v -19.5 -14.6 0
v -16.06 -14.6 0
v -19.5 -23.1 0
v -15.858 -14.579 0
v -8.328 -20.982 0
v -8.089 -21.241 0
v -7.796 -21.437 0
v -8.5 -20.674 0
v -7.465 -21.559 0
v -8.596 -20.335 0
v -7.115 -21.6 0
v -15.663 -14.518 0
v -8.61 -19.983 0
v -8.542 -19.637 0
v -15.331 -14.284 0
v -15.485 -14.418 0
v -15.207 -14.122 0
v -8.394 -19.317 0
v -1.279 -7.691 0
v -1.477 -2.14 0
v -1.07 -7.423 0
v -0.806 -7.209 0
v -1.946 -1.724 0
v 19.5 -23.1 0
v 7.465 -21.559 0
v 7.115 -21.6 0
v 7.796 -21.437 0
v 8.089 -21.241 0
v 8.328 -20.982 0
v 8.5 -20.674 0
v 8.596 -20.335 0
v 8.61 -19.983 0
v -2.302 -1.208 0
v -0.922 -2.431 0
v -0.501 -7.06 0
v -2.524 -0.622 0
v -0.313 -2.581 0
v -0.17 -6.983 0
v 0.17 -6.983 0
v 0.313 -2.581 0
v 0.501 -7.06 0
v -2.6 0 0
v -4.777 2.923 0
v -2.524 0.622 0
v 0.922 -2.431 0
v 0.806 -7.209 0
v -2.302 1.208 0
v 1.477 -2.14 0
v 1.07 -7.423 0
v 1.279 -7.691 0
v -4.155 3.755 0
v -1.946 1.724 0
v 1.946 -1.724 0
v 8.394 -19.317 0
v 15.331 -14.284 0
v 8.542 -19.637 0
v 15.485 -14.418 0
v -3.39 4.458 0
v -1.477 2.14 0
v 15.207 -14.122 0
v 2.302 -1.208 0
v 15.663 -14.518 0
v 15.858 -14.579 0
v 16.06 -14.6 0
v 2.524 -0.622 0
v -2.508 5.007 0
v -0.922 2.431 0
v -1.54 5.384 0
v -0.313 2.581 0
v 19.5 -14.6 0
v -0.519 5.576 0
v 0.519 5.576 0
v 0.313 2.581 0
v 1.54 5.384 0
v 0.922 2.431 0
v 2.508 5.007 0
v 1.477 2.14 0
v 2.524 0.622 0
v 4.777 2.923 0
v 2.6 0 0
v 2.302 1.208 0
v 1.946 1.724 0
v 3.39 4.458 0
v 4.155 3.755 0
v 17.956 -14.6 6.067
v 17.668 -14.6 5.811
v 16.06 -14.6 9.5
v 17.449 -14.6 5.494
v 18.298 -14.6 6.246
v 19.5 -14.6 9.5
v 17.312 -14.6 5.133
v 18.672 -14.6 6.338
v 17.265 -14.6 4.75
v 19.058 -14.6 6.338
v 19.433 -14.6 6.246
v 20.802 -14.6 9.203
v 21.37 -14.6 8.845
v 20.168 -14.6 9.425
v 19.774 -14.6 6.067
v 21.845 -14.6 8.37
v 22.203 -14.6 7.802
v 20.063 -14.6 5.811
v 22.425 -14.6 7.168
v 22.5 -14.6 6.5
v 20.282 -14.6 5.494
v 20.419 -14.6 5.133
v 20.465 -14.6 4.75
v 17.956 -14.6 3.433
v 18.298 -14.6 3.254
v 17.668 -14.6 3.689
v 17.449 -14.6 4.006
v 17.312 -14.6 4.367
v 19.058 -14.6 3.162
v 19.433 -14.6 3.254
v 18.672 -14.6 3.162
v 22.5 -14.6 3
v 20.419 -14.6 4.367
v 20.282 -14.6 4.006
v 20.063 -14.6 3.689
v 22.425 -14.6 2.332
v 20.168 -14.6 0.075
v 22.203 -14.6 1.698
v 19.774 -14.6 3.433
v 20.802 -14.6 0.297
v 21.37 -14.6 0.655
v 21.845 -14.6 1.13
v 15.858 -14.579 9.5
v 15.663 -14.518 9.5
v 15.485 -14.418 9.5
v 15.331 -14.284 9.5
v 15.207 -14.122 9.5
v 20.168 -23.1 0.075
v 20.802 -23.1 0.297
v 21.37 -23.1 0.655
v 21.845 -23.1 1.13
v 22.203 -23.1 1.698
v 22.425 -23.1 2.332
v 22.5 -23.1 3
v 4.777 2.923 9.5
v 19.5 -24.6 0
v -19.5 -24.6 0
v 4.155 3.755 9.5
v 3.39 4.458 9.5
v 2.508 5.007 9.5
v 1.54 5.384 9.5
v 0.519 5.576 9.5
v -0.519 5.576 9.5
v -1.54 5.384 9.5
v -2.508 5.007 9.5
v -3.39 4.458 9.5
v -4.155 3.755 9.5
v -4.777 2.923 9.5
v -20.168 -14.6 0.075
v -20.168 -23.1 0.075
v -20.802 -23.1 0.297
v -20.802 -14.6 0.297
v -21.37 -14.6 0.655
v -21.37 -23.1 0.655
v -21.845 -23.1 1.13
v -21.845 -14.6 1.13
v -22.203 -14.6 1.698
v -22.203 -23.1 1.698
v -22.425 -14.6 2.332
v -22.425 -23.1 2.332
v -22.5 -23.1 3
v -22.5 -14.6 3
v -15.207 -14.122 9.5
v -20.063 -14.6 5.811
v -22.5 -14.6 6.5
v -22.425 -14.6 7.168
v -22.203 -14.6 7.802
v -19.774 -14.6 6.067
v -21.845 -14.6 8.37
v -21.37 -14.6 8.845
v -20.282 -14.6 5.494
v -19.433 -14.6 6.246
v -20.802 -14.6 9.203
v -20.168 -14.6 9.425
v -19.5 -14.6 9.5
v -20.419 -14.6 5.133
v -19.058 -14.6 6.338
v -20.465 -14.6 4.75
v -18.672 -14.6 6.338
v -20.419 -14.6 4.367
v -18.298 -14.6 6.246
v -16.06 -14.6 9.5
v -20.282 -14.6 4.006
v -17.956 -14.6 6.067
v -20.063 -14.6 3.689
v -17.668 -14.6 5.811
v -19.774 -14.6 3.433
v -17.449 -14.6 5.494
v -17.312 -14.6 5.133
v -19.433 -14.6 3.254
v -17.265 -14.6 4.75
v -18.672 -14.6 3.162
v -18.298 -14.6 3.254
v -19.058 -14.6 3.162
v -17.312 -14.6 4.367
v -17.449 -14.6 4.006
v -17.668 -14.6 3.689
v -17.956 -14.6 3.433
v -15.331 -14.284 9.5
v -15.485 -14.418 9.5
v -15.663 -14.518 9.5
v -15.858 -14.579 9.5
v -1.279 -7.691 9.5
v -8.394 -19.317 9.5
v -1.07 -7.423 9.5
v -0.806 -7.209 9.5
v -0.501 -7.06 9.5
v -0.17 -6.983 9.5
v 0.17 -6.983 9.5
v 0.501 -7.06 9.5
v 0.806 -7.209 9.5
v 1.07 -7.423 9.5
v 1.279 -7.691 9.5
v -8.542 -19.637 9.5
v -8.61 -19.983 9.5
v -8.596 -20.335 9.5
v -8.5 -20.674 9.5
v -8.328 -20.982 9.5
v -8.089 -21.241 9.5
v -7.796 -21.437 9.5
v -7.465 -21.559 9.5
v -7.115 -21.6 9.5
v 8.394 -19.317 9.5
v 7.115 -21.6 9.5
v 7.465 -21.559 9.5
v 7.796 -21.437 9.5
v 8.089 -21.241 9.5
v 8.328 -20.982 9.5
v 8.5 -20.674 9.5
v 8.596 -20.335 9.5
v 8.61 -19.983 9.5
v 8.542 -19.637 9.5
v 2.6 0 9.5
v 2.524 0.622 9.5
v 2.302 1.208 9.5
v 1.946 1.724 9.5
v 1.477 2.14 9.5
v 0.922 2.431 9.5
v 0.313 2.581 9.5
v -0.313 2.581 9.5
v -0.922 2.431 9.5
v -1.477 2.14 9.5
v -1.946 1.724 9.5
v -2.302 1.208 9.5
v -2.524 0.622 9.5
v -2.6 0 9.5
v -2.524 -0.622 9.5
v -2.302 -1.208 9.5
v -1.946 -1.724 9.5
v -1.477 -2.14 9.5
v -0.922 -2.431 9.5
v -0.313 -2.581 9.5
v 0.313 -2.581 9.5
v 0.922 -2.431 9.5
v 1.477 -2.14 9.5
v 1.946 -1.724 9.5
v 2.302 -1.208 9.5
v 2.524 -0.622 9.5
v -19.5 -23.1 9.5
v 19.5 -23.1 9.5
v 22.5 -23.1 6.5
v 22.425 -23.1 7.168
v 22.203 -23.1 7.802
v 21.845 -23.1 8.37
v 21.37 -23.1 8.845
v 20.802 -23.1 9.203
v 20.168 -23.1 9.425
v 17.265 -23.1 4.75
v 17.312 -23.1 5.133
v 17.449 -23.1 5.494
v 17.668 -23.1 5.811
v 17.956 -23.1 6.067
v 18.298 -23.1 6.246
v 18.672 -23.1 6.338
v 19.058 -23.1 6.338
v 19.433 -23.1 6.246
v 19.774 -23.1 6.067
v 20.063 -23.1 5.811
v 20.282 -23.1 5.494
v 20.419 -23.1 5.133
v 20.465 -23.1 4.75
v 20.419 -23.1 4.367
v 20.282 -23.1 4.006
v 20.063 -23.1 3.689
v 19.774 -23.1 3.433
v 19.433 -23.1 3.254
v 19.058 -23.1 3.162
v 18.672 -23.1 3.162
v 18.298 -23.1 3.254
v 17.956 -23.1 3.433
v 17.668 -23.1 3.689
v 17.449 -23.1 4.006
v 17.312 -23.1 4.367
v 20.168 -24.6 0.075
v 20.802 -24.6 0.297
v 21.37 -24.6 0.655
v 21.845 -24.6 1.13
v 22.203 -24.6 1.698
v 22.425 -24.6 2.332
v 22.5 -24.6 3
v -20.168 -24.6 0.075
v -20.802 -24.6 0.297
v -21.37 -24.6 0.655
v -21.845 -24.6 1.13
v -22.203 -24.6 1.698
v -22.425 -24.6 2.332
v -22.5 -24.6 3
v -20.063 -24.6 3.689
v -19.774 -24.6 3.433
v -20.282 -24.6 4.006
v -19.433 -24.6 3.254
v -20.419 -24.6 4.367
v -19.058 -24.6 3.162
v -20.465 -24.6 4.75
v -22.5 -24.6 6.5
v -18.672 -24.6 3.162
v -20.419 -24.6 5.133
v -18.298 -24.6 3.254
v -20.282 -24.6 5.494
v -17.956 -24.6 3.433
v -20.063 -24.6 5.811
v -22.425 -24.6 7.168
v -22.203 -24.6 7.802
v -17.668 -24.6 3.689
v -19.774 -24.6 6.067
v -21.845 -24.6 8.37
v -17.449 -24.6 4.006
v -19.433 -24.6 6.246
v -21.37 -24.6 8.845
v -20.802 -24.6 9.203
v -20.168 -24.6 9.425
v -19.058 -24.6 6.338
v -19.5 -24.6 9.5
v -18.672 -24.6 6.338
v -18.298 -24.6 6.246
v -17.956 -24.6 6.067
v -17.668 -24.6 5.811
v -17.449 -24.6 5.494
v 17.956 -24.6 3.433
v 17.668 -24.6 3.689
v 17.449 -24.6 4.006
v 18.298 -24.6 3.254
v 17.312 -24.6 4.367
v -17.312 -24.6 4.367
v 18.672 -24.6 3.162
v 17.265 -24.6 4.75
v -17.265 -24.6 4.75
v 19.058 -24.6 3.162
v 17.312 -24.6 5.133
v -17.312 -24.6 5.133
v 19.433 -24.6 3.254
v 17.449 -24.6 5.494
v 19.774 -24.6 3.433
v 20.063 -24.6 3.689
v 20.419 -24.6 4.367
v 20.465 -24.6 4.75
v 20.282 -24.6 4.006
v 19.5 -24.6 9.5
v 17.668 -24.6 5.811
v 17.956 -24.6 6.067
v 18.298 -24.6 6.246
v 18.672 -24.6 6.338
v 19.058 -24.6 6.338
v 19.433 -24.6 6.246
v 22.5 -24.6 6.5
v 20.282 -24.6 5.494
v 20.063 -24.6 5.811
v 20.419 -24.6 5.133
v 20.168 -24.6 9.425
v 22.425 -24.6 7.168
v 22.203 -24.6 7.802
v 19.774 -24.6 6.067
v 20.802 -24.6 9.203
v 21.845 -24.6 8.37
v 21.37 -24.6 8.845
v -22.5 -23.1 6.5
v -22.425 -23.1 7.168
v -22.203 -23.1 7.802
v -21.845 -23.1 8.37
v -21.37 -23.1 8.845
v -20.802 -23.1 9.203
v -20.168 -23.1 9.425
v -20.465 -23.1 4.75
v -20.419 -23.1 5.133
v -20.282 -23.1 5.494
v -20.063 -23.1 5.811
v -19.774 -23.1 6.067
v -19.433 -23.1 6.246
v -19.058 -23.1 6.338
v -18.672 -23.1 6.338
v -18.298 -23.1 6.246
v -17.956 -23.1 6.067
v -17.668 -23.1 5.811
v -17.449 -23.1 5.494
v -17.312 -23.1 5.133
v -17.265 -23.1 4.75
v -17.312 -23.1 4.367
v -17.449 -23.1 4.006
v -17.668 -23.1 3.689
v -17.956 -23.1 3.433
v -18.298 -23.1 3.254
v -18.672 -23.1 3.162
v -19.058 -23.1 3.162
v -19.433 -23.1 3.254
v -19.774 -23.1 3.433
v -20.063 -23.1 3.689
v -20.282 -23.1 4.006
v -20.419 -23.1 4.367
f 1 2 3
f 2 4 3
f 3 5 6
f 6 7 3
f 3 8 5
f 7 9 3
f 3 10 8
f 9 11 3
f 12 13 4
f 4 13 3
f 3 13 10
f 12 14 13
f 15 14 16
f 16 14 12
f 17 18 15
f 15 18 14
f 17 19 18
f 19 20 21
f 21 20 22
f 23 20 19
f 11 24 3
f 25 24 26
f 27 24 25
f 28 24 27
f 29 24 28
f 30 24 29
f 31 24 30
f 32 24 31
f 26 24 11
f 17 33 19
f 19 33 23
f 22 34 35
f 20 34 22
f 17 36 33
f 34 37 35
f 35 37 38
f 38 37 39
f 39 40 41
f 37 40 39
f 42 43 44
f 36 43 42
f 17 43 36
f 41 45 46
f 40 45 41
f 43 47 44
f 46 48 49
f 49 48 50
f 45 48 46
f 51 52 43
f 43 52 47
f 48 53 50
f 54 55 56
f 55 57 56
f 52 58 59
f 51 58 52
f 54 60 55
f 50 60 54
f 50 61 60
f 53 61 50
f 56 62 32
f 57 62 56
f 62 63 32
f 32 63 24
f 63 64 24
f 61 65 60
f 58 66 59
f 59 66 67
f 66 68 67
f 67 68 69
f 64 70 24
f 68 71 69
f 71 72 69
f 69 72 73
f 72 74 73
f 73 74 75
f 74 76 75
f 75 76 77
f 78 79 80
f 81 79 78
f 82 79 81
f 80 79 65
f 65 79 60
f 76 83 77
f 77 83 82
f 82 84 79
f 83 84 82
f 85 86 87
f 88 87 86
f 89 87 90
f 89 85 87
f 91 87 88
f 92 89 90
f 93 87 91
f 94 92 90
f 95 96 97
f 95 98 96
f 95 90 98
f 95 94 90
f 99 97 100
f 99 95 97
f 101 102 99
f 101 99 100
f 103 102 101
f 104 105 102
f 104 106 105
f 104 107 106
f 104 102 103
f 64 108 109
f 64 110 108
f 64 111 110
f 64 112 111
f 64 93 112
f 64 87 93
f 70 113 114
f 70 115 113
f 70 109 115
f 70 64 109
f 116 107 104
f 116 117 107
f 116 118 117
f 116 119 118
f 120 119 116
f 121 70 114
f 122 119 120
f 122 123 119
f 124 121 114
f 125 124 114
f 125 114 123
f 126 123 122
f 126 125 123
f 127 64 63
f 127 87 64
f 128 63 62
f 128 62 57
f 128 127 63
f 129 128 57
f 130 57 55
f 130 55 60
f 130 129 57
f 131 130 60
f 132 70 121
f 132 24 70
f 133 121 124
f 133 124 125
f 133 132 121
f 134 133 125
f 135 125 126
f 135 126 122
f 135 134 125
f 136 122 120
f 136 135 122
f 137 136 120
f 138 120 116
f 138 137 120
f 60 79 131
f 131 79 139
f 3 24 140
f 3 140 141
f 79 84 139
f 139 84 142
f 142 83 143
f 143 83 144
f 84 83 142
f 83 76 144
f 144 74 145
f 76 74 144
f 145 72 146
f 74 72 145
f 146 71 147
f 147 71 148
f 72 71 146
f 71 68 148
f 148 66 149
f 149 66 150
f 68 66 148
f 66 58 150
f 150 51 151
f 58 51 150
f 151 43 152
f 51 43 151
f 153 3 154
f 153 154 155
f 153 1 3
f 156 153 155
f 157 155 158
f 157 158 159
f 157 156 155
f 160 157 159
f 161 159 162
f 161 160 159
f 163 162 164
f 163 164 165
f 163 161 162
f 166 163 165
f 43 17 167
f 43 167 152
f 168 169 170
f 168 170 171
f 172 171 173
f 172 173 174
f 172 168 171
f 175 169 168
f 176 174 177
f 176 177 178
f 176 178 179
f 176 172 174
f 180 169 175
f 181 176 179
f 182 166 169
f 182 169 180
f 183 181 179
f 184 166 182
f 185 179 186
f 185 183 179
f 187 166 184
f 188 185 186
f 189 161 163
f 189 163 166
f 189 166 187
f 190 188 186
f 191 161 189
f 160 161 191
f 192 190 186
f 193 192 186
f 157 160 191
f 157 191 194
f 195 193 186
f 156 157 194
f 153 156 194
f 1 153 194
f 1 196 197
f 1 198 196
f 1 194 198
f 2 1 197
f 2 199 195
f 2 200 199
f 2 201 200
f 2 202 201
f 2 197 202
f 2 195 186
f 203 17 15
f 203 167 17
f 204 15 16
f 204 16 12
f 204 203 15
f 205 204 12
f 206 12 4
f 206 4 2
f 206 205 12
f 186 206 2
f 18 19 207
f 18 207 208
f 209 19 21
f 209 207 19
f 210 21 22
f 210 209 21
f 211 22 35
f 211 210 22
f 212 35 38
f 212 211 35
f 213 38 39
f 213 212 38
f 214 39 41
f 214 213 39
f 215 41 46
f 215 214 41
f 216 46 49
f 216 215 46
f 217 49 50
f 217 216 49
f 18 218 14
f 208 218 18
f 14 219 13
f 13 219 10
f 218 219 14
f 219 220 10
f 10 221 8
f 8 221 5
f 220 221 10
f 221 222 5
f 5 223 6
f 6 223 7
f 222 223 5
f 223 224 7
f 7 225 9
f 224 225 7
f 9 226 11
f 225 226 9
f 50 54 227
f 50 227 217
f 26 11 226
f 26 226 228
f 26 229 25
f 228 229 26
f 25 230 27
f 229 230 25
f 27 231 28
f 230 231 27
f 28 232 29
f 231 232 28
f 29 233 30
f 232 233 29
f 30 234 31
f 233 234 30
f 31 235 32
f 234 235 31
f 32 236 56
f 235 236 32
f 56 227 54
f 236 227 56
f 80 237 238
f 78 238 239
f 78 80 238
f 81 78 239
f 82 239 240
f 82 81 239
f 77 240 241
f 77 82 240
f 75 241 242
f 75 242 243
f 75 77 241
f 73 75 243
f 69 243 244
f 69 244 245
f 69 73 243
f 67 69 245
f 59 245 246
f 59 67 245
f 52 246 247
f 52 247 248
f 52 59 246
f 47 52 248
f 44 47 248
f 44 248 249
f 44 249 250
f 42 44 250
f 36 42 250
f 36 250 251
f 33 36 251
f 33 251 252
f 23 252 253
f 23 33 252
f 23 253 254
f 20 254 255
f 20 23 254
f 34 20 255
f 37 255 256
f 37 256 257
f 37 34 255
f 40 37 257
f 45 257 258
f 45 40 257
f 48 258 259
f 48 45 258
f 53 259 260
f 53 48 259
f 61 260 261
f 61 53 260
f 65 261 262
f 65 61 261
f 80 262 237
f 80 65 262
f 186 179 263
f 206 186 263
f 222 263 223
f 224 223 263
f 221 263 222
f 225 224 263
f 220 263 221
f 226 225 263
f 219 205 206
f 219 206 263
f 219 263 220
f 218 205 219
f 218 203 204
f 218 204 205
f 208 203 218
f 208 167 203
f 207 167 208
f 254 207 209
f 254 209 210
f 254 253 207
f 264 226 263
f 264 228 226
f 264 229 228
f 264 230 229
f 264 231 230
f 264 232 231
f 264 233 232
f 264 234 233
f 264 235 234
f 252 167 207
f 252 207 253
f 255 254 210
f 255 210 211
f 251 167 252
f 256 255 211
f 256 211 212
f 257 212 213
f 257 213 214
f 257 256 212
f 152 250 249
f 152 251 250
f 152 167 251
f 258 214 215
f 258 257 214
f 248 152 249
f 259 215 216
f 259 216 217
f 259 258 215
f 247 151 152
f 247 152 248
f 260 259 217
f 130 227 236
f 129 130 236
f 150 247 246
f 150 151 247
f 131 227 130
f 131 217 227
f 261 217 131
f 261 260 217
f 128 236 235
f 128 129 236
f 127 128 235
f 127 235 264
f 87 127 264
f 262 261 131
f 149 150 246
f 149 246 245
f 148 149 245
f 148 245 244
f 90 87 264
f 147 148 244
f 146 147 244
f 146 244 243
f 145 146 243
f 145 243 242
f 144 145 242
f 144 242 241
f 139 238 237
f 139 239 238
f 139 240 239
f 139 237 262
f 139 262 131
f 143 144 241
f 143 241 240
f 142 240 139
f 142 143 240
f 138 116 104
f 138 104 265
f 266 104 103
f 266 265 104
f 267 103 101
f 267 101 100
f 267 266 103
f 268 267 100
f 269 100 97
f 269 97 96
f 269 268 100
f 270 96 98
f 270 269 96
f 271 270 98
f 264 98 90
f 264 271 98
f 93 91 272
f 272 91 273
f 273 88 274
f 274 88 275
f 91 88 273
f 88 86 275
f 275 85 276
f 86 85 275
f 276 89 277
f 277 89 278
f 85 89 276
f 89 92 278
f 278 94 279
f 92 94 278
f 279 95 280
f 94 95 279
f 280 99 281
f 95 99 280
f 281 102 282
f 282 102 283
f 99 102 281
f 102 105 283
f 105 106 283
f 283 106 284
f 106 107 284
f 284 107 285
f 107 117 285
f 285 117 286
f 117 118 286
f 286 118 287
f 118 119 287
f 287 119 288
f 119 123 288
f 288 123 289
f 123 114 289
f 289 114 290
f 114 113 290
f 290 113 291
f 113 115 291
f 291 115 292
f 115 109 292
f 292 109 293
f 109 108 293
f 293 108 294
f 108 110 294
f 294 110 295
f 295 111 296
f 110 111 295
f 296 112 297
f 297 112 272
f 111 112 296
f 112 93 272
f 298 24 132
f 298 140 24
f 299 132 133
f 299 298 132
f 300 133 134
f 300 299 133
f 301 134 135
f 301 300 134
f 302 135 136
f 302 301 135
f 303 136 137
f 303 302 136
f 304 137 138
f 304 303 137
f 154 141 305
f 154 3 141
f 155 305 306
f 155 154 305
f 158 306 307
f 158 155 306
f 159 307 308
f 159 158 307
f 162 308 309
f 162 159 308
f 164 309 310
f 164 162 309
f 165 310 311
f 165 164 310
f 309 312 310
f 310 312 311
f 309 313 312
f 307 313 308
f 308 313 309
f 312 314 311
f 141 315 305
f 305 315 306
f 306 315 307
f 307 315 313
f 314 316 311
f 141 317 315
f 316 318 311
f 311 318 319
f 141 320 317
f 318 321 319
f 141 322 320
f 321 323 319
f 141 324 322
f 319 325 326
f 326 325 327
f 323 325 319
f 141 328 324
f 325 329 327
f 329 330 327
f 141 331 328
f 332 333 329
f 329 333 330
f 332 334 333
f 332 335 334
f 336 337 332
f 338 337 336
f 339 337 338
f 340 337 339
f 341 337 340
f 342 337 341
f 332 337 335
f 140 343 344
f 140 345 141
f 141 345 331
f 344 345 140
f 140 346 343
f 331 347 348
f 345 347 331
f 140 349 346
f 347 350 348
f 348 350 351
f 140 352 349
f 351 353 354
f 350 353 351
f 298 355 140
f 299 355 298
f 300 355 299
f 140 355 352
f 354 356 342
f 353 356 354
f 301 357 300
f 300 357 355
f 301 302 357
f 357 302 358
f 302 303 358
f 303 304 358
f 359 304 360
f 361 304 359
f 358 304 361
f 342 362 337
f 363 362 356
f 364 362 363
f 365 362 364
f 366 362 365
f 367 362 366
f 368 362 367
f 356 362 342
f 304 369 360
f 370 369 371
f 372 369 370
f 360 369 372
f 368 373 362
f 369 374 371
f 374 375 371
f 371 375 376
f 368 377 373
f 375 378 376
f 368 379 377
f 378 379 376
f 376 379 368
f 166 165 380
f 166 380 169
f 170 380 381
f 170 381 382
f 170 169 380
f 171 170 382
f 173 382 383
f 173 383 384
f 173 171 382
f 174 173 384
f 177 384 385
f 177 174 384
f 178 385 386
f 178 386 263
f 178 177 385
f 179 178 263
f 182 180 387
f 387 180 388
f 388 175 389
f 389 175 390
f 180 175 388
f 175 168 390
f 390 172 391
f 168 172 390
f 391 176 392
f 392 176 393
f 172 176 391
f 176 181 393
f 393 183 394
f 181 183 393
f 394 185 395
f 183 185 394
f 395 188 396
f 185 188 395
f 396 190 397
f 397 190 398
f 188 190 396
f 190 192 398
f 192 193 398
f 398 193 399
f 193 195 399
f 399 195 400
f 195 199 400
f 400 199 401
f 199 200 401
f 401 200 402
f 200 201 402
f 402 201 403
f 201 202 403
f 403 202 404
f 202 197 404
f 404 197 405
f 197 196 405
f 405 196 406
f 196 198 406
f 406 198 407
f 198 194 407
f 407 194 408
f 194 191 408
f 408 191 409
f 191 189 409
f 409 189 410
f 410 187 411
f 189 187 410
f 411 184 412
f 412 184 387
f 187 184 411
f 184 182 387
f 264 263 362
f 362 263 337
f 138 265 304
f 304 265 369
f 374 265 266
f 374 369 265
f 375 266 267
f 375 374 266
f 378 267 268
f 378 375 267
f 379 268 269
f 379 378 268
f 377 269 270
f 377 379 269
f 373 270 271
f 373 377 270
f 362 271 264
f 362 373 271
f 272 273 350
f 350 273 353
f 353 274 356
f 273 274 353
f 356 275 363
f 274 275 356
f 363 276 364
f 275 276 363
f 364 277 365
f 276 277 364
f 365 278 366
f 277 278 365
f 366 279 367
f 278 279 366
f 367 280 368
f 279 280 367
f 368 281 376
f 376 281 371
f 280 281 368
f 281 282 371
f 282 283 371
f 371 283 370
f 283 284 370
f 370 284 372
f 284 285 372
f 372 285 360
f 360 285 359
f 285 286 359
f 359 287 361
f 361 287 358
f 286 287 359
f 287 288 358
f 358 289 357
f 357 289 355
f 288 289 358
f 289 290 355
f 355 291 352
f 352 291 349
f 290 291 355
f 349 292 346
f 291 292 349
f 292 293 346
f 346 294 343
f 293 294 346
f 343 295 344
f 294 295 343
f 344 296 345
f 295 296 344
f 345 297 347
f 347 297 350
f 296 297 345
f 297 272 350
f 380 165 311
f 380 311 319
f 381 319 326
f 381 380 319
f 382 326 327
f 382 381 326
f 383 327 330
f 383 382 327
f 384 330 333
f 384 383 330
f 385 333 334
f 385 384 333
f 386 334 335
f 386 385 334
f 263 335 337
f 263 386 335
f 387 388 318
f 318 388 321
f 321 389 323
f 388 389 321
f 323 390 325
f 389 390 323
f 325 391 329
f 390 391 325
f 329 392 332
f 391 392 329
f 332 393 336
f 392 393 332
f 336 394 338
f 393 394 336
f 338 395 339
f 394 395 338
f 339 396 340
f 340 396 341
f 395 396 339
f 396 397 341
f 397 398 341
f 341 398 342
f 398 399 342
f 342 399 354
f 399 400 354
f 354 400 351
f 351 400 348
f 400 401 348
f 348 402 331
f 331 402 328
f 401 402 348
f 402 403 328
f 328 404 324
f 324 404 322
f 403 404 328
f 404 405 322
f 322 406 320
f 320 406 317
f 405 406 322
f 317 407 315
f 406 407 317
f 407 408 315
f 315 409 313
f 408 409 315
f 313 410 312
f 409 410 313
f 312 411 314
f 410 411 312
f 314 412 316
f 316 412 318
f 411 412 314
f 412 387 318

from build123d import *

# Parameters (mm, degrees)
SKETCH_R           = 2.6
PAD_DEPTH          = 9.5
SKETCH001_R        = 1.6
POCKET_DEPTH       = 10.001
POCKET_FACE8_W     = 45
POCKET_FACE8_H     = 9.5
POCKET_FACE8_R     = 1.6
POCKET001_DEPTH    = 1.5
PAD001_DEPTH       = 45
PAD001_FACE15_R    = 1.6
POCKET002_DEPTH    = 1.501
POCKET003_DEPTH    = 9.501
FILLET_R           = 1.5
POCKET004_DEPTH    = 45.001
POCKET004_FACE12_W = 45
POCKET004_FACE12_H = 9.5
POCKET004_FACE12_R = 1.6
PAD002_DEPTH       = 1.5
FILLET001_R        = 3
FILLET002_R        = 1


with BuildPart() as part:
    # Sketch → Pad (new body)
    with BuildSketch(Plane.XY):
        with BuildLine():
            Line((22.5, -24.6), (-22.5, -24.6))
            Line((-22.5, -24.6), (-22.5, -14.6))
            Line((-22.5, -14.6), (-15.5, -14.6))
            Line((-15.5, -14.6), (-4.77656, 2.923094))
            ThreePointArc((4.77656, 2.923094), (0, 5.6), (-4.77656, 2.923094))
            Line((15.5, -14.6), (4.77656, 2.923094))
            Line((15.5, -14.6), (22.5, -14.6))
            Line((22.5, -14.6), (22.5, -24.6))
        make_face()
        Circle(SKETCH_R, mode=Mode.SUBTRACT)
    extrude(amount=PAD_DEPTH)

    # Sketch001 (on Face1 of Pad) → Pocket (cut, through all)
    with BuildSketch(Plane(origin=(0, -14.6, 0), x_dir=(-1, 0, 0), z_dir=(0, 1, 0))):
        with Locations((-18.865231, 4.75)):
            Circle(SKETCH001_R)
        with Locations((18.865231, 4.75)):
            Circle(SKETCH001_R)
    extrude(amount=-POCKET_DEPTH, mode=Mode.SUBTRACT)

    # Pocket Face8 → Pocket001 (cut)
    with BuildSketch(Plane(origin=(0, -24.6, 4.75), x_dir=(-1, 0, 0), z_dir=(0, -1, 0))):
        Rectangle(POCKET_FACE8_W, POCKET_FACE8_H)
        with Locations((-18.865231, 0)):
            Circle(POCKET_FACE8_R, mode=Mode.SUBTRACT)
        with Locations((18.865231, 0)):
            Circle(POCKET_FACE8_R, mode=Mode.SUBTRACT)
    extrude(amount=-POCKET001_DEPTH, mode=Mode.SUBTRACT)

    # Sketch002 (on Face9 of Pocket001) → Pad001 (join)
    with BuildSketch(Plane(origin=(-22.5, 0, 0), x_dir=(0, -1, 0), z_dir=(-1, 0, 0))):
        Polygon((23.1, 9.5), (23.1, 0), (24.6, 2.25), (24.6, 7.25), align=None)
    extrude(amount=-PAD001_DEPTH)

    # Pad001 Face15 → Pocket002 (cut, through all)
    with BuildSketch(Plane(origin=(18.865231, -23.1, 4.75), x_dir=(1, 0, 0), z_dir=(0, 1, 0))):
        Circle(PAD001_FACE15_R)
    extrude(amount=-POCKET002_DEPTH, mode=Mode.SUBTRACT)

    # Sketch003 (on Face3 of Pocket002) → Pocket003 (cut, through all)
    with BuildSketch(Plane(origin=(0, 0, 0), x_dir=(1, 0, 0), z_dir=(0, 0, -1))):
        Polygon((0, 5.6), (-9.791367, 21.6), (9.791367, 21.6), align=None)
    extrude(amount=-POCKET003_DEPTH, mode=Mode.SUBTRACT)

    # Fillet
    fillet_edges = [part.edges().sort_by_distance(p)[0] for p in [
        (9.791367, -21.6, 4.75),
        (-9.791367, -21.6, 4.75),
        (0, -5.6, 4.75),
    ]]
    fillet(fillet_edges, radius=FILLET_R)

    # Fillet Face19 → Pocket004 (cut, through all)
    with BuildSketch(Plane(origin=(22.5, -23.772414, 4.75), x_dir=(0, -1, 0), z_dir=(1, 0, 0))):
        Polygon((-0.672414, 4.75), (-0.672414, -4.75), (0.827586, -2.5), (0.827586, 2.5), align=None)
    extrude(amount=-POCKET004_DEPTH, mode=Mode.SUBTRACT)

    # Pocket004 Face12 → Pad002 (add)
    with BuildSketch(Plane(origin=(0, -23.1, 4.75), x_dir=(-1, 0, 0), z_dir=(0, -1, 0))):
        Rectangle(POCKET004_FACE12_W, POCKET004_FACE12_H)
        with Locations((18.865231, 0)):
            Circle(POCKET004_FACE12_R, mode=Mode.SUBTRACT)
        with Locations((-18.865231, 0)):
            Circle(POCKET004_FACE12_R, mode=Mode.SUBTRACT)
    extrude(amount=PAD002_DEPTH)

    # Fillet001
    fillet001_edges = [part.edges().sort_by_distance(p)[0] for p in [
        (22.5, -18.85, 9.5),
        (22.5, -18.85, 0),
        (-22.5, -18.85, 9.5),
        (-22.5, -18.85, 0),
    ]]
    fillet(fillet001_edges, radius=FILLET001_R)

    # Fillet002
    fillet002_edges = [part.edges().sort_by_distance(p)[0] for p in [
        (15.5, -14.6, 4.75),
        (-15.5, -14.6, 4.75),
    ]]
    fillet(fillet002_edges, radius=FILLET002_R)


solid = part.part
